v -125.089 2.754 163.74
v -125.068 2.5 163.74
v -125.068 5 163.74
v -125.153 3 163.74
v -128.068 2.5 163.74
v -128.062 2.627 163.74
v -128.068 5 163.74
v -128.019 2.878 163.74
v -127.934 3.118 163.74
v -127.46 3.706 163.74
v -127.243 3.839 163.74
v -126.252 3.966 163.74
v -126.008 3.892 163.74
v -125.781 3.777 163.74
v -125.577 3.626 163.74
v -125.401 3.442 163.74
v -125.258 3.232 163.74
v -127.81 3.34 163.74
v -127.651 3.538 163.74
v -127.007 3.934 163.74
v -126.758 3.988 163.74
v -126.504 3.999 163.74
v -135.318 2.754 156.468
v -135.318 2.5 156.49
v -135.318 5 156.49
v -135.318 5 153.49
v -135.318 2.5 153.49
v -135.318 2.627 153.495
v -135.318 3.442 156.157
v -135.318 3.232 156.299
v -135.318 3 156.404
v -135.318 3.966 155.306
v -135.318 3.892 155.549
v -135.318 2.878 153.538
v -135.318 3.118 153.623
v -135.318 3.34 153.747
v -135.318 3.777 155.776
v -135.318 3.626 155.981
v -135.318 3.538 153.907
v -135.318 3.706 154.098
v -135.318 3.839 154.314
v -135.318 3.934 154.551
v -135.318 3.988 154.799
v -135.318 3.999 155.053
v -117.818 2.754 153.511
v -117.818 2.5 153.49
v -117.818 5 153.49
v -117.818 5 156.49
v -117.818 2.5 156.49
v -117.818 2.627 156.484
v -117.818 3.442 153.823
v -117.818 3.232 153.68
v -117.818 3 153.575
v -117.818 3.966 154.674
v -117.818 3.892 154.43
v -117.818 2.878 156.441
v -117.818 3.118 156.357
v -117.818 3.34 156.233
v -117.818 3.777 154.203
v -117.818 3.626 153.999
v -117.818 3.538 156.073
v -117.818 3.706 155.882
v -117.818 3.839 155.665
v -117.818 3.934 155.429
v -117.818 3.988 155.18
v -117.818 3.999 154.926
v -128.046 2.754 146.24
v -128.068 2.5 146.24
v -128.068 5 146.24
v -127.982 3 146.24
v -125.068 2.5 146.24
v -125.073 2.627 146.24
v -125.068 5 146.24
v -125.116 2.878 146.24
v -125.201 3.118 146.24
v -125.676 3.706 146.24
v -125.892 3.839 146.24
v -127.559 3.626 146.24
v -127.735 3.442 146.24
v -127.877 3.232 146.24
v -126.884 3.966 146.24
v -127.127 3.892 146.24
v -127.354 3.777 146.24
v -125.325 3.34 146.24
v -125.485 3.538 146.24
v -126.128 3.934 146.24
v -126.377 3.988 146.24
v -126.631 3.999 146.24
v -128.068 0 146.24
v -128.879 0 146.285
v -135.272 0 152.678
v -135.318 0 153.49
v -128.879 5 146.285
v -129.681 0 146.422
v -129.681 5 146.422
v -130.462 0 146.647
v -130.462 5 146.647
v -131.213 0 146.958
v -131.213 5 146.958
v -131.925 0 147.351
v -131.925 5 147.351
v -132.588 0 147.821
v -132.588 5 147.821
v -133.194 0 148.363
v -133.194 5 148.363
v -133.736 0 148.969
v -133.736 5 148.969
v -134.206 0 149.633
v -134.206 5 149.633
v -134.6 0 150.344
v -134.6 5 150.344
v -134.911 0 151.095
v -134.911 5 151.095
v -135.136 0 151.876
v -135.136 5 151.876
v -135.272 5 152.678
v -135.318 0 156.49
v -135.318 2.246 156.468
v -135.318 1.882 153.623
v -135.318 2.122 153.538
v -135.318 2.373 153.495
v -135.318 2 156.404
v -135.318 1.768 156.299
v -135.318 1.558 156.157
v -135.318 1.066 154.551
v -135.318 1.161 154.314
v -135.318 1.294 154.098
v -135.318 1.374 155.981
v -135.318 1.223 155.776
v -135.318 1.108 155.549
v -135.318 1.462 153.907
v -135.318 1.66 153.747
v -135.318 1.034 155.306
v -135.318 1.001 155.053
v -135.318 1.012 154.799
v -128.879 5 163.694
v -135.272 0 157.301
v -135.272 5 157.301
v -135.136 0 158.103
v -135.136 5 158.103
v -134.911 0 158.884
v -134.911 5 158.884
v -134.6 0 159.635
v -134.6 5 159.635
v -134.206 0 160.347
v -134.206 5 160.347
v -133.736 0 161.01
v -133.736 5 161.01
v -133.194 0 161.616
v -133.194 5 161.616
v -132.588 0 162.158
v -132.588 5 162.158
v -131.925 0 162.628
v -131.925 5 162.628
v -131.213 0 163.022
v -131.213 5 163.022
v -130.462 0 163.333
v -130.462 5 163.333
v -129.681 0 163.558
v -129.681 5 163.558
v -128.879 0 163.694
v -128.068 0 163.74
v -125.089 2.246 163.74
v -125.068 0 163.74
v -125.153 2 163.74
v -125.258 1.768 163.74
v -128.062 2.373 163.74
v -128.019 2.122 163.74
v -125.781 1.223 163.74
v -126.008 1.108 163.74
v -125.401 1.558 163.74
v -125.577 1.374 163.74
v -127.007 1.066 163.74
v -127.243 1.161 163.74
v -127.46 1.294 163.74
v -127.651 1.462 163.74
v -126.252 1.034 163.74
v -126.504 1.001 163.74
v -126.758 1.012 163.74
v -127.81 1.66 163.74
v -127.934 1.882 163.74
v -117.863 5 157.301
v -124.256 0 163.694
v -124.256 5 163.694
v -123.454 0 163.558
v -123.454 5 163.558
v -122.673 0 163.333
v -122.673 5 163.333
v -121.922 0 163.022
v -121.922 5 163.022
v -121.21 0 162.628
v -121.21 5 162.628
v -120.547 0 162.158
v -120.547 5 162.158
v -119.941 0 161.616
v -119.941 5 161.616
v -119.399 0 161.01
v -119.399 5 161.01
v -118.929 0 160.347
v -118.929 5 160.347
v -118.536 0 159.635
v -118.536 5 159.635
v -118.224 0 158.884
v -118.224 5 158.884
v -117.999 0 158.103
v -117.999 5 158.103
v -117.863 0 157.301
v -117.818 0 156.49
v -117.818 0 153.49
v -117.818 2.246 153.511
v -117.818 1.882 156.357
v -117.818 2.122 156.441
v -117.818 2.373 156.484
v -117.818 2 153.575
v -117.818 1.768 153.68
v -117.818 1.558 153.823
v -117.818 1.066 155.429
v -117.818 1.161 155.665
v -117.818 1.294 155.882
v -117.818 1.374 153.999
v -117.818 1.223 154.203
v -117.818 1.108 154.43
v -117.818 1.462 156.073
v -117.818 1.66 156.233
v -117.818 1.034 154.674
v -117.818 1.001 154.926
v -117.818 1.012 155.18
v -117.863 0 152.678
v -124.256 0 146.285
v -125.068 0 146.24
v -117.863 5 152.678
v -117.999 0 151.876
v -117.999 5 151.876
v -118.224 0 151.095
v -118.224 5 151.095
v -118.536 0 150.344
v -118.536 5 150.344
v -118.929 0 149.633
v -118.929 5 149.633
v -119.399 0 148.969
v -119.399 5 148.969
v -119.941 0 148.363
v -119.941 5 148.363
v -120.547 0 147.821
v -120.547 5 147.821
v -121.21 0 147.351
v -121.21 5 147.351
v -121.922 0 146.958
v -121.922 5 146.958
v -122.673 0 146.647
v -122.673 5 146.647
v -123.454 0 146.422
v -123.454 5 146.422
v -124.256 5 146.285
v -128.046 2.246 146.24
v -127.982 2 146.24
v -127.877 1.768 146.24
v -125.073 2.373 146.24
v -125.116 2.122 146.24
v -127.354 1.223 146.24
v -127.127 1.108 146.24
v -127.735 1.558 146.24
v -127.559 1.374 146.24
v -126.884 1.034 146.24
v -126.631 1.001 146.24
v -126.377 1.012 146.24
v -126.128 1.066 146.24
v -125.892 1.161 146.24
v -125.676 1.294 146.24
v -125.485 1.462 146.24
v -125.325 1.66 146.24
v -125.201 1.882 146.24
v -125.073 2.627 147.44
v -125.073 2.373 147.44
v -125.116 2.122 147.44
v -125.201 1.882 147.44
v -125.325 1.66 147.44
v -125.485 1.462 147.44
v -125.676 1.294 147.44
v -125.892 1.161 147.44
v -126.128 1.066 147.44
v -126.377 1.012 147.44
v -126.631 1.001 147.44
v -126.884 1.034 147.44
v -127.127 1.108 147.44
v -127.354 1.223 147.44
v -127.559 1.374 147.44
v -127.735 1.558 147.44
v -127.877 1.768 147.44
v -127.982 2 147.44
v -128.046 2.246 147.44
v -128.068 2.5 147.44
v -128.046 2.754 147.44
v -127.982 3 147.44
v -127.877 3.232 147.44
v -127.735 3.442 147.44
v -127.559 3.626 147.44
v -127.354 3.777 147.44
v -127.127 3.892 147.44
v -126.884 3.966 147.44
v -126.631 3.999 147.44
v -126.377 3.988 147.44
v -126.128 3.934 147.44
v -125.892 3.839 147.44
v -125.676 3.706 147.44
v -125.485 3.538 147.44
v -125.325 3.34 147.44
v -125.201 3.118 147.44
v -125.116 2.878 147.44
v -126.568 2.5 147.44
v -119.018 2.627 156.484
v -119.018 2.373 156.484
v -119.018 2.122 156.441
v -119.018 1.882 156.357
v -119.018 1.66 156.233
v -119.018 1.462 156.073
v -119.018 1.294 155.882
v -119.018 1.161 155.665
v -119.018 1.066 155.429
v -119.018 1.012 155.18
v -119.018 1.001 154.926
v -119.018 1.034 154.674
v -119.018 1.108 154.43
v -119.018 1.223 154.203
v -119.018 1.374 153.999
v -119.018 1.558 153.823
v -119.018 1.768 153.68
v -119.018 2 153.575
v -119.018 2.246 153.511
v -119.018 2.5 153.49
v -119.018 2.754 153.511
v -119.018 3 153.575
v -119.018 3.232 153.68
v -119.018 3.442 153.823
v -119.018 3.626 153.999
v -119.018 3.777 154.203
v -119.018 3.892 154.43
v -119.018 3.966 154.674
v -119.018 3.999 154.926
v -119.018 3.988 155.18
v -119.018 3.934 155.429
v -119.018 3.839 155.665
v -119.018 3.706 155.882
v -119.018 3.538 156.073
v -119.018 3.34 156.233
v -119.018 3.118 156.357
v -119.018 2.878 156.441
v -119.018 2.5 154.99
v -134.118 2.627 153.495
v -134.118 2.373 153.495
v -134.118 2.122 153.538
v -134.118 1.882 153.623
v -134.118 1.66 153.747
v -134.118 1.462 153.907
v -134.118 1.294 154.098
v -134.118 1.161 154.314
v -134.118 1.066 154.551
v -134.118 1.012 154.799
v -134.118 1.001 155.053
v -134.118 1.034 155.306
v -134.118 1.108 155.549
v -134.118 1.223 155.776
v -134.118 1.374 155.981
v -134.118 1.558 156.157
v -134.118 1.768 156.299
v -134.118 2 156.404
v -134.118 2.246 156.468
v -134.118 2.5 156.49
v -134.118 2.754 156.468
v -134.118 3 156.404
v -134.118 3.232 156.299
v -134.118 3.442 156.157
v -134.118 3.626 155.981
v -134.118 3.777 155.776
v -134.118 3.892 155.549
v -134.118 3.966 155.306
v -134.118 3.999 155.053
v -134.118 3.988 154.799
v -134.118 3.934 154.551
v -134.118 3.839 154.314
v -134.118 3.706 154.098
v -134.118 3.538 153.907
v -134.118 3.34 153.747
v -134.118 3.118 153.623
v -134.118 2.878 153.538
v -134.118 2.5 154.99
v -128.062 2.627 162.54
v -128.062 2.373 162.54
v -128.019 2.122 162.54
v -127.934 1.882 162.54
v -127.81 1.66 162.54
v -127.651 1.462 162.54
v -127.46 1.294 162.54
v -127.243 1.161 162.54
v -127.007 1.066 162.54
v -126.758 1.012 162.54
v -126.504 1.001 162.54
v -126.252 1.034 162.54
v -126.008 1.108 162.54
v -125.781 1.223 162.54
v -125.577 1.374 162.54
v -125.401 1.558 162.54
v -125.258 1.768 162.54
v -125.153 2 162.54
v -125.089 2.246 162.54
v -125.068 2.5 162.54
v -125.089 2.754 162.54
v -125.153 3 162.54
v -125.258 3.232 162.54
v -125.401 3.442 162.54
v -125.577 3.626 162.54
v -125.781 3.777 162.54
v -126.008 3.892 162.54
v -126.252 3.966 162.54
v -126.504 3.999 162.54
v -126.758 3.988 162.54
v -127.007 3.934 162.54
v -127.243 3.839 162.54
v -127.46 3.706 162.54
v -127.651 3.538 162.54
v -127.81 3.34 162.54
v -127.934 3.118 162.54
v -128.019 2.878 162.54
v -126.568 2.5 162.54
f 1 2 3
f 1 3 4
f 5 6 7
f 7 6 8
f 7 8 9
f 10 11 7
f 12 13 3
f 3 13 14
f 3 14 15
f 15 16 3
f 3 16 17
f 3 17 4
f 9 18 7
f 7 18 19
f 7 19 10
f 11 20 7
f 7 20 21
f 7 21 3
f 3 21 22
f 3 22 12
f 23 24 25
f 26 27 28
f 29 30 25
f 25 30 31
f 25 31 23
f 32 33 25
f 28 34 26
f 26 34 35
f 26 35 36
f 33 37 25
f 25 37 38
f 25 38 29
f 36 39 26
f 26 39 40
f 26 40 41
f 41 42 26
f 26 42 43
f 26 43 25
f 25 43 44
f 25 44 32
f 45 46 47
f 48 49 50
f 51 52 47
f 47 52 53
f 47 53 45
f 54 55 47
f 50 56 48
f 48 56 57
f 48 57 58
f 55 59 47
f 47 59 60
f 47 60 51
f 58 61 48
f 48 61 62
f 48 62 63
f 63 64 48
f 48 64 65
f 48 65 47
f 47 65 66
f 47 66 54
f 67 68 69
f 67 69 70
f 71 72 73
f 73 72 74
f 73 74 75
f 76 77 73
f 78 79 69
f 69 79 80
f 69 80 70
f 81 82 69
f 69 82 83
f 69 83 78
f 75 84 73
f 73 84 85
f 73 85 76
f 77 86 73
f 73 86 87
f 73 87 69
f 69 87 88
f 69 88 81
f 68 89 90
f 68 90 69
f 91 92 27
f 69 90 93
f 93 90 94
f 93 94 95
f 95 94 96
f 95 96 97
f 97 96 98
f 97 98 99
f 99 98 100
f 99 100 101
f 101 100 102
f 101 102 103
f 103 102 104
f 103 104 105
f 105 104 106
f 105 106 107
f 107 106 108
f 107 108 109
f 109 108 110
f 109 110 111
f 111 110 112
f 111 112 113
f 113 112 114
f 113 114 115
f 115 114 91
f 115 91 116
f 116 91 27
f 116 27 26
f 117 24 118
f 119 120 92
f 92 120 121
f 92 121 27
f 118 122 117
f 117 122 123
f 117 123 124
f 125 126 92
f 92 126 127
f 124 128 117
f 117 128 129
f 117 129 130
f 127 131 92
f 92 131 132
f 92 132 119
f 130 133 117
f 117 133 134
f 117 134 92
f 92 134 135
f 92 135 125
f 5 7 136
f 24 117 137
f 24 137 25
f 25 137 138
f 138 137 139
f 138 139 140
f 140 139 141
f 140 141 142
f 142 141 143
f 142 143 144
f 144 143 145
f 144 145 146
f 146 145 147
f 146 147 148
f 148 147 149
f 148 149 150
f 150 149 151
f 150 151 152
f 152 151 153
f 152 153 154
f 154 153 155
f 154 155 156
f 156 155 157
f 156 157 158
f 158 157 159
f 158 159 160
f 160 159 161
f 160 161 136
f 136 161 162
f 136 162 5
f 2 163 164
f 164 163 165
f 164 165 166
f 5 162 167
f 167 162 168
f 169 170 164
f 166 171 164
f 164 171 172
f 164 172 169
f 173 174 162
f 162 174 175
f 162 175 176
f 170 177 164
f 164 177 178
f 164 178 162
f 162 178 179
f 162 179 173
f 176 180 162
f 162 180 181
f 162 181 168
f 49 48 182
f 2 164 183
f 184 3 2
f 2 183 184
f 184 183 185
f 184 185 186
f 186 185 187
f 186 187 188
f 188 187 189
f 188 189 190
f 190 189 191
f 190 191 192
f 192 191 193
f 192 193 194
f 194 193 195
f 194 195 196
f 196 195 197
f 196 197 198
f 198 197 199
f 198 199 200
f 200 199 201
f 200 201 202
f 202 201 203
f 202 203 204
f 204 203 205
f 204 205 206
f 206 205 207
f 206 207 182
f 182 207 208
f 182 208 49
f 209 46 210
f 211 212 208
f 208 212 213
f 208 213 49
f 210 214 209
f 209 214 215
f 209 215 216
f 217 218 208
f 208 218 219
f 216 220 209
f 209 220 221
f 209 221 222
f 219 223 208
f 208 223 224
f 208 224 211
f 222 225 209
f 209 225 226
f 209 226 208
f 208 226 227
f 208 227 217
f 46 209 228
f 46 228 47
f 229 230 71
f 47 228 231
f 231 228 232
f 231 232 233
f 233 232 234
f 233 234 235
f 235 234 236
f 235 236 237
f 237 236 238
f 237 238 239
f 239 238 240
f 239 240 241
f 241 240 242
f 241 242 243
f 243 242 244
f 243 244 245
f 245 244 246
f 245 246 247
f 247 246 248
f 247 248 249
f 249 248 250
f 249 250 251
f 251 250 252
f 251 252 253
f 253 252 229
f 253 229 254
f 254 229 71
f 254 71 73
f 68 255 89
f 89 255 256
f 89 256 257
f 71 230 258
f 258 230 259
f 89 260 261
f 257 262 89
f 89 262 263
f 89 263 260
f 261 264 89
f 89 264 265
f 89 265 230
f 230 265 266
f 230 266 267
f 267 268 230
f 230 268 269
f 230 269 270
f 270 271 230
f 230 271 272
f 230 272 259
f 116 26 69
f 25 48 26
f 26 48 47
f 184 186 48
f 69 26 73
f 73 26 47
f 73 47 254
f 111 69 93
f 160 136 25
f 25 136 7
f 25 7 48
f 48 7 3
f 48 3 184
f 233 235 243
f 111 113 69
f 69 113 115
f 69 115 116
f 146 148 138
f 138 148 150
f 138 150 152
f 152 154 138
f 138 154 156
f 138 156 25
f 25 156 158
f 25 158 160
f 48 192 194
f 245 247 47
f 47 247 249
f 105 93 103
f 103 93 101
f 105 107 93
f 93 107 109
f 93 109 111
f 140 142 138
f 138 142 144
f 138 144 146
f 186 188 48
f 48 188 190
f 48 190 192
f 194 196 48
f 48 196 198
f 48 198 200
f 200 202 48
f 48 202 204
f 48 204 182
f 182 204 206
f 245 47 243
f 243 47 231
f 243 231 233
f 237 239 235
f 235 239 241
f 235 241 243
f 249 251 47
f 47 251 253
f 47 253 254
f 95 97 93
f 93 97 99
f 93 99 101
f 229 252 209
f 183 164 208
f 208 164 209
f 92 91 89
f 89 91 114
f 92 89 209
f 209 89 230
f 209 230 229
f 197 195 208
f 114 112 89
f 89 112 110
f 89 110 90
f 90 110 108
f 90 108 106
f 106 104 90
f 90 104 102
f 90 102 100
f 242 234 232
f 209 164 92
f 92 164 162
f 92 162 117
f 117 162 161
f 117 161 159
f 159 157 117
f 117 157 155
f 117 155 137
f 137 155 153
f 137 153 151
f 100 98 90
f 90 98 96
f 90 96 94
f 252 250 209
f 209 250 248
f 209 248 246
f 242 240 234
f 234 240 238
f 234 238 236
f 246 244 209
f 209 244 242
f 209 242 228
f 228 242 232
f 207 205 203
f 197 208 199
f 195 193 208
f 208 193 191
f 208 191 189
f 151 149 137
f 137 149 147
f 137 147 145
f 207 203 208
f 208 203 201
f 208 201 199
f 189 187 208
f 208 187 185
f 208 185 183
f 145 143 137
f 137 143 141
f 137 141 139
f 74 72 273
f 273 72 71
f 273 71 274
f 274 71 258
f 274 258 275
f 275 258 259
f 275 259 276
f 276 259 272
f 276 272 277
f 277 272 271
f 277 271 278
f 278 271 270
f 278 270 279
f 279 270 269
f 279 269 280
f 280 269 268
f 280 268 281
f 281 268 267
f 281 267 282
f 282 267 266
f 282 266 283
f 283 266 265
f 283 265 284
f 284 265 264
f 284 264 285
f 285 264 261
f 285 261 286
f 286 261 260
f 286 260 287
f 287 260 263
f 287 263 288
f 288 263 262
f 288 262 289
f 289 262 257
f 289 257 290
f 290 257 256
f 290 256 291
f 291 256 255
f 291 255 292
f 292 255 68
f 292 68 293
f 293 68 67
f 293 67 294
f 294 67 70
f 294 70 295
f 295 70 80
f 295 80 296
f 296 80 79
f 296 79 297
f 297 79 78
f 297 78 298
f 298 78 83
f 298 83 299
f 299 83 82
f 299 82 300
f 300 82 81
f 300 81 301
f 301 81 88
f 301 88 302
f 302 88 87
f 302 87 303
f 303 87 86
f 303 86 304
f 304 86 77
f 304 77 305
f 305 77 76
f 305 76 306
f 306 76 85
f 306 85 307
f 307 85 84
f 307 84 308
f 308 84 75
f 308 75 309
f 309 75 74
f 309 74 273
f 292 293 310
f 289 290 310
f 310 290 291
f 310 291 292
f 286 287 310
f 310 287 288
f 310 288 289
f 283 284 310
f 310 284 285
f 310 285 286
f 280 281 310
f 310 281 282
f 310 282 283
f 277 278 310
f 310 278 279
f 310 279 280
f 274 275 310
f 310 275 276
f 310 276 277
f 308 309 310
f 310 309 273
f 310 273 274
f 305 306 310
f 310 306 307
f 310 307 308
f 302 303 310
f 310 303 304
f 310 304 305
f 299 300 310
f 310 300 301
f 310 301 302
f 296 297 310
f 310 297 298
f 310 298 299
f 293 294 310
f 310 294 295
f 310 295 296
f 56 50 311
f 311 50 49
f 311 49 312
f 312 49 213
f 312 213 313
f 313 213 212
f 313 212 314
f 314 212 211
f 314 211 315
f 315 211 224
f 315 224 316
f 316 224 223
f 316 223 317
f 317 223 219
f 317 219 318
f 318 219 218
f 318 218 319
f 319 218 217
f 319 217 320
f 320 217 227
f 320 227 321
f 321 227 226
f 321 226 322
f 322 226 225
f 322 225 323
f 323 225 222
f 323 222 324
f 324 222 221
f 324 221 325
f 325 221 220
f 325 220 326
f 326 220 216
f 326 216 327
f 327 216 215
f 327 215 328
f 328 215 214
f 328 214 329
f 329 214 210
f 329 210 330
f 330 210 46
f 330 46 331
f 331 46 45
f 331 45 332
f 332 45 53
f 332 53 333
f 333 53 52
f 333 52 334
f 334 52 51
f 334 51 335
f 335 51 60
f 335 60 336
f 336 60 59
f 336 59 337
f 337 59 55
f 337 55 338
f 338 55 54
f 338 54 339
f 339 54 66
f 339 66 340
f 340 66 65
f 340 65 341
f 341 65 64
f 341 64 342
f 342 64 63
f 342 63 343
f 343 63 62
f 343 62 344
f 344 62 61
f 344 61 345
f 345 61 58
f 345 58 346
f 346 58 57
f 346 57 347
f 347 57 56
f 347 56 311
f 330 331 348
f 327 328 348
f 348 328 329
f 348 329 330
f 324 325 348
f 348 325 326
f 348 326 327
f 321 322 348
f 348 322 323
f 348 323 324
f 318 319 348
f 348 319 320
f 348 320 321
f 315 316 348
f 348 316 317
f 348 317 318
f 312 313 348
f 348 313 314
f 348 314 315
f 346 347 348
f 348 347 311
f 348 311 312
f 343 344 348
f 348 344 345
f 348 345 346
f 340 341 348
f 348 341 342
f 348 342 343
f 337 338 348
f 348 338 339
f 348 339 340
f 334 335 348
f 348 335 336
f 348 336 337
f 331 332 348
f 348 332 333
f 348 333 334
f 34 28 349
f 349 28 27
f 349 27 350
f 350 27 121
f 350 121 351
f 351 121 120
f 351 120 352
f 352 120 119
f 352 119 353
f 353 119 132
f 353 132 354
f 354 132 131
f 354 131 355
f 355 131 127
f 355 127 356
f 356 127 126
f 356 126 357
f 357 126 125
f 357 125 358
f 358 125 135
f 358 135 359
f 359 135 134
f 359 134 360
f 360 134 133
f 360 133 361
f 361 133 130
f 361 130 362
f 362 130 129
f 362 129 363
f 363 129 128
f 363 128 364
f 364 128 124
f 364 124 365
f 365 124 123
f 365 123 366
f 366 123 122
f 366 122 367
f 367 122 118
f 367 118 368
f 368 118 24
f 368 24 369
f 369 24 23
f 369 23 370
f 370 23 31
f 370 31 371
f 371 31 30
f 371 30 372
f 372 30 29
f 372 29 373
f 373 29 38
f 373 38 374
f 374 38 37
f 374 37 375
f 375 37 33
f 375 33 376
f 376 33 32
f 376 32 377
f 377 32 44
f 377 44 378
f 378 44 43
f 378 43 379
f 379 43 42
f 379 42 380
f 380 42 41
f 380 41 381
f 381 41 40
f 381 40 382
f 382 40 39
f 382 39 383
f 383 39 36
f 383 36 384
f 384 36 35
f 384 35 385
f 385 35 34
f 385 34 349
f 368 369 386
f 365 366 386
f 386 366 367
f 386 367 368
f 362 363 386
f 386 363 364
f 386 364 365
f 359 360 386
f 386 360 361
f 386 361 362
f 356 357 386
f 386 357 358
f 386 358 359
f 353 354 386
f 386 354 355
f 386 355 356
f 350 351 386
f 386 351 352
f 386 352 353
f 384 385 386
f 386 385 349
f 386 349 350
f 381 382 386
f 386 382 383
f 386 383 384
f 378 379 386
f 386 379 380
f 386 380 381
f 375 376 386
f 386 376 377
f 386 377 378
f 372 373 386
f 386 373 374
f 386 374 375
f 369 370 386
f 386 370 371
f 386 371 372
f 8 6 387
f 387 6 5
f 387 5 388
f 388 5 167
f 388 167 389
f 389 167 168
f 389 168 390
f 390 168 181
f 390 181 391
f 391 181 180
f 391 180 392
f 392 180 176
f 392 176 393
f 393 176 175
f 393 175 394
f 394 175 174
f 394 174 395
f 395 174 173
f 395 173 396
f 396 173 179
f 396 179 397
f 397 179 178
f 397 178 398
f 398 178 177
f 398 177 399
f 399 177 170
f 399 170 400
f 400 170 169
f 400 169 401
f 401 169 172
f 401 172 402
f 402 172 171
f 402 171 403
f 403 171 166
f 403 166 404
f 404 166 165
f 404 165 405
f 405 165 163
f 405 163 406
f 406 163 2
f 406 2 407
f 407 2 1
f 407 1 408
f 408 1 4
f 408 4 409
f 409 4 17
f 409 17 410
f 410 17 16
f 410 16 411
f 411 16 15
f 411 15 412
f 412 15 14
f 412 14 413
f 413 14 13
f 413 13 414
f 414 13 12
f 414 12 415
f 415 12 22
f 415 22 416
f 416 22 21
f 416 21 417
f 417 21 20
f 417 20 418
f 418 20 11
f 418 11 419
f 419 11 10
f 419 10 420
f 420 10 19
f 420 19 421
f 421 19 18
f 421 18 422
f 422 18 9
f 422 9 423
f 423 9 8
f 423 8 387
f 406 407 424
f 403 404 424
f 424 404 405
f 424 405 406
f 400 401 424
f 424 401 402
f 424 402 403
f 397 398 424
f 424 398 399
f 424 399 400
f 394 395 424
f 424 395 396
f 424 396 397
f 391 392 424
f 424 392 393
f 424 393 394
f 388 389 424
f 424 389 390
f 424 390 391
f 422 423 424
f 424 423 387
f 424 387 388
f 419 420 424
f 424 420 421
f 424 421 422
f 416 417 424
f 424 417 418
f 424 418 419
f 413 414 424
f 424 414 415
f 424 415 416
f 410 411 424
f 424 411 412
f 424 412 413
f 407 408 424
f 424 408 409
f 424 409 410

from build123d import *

# Parameters (mm, degrees)
BOSS_EXTRUDE3_DEPTH = 5
SKETCH3_R           = 1.5
CUT_EXTRUDE1_DEPTH  = 1.2
SKETCH4_R           = 1.5
CUT_EXTRUDE2_DEPTH  = 1.2
SKETCH5_R           = 1.5
CUT_EXTRUDE3_DEPTH  = 1.2
SKETCH6_R           = 1.5
CUT_EXTRUDE4_DEPTH  = 1.2


with BuildPart() as part:
    # Sketch1 → Boss-Extrude3 (new body)
    with BuildSketch(Plane(origin=(0, 0, 0), x_dir=(1, 0, 0), z_dir=(0, 1, 0))):
        with BuildLine():
            Line((-128.067602034, -163.739757522), (-125.067602034, -163.739757522))
            ThreePointArc((-125.067602034, -163.739757522), (-119.94107787, -161.616281686), (-117.817602034, -156.489757522))
            Line((-117.817602034, -156.489757522), (-117.817602034, -153.489757522))
            ThreePointArc((-117.817602034, -153.489757522), (-119.94107787, -148.363233359), (-125.067602034, -146.239757522))
            Line((-125.067602034, -146.239757522), (-128.067602034, -146.239757522))
            ThreePointArc((-128.067602034, -146.239757522), (-133.194126197, -148.363233359), (-135.317602034, -153.489757522))
            Line((-135.317602034, -153.489757522), (-135.317602034, -156.489757522))
            ThreePointArc((-135.317602034, -156.489757522), (-133.194126197, -161.616281686), (-128.067602034, -163.739757522))
        make_face()
    extrude(amount=BOSS_EXTRUDE3_DEPTH)

    # Sketch3 → Cut-Extrude1 (cut)
    with BuildSketch(Plane(origin=(0, 0, 146.239757522), x_dir=(-1, 0, 0), z_dir=(0, 0, -1))):
        with Locations((126.567602034, 2.5)):
            Circle(SKETCH3_R)
    extrude(amount=-CUT_EXTRUDE1_DEPTH, mode=Mode.SUBTRACT)

    # Sketch4 → Cut-Extrude2 (cut)
    with BuildSketch(Plane(origin=(-117.817602034, 0, 0), x_dir=(0, 0, -1), z_dir=(1, 0, 0))):
        with Locations((-154.989757522, 2.5)):
            Circle(SKETCH4_R)
    extrude(amount=-CUT_EXTRUDE2_DEPTH, mode=Mode.SUBTRACT)

    # Sketch5 → Cut-Extrude3 (cut)
    with BuildSketch(Plane.ZY.offset(135.317602034)):
        with Locations((154.989757522, 2.5)):
            Circle(SKETCH5_R)
    extrude(amount=-CUT_EXTRUDE3_DEPTH, mode=Mode.SUBTRACT)

    # Sketch6 → Cut-Extrude4 (cut)
    with BuildSketch(Plane.XY.offset(163.739757522)):
        with Locations((-126.567602034, 2.5)):
            Circle(SKETCH6_R)
    extrude(amount=-CUT_EXTRUDE4_DEPTH, mode=Mode.SUBTRACT)


solid = part.part
